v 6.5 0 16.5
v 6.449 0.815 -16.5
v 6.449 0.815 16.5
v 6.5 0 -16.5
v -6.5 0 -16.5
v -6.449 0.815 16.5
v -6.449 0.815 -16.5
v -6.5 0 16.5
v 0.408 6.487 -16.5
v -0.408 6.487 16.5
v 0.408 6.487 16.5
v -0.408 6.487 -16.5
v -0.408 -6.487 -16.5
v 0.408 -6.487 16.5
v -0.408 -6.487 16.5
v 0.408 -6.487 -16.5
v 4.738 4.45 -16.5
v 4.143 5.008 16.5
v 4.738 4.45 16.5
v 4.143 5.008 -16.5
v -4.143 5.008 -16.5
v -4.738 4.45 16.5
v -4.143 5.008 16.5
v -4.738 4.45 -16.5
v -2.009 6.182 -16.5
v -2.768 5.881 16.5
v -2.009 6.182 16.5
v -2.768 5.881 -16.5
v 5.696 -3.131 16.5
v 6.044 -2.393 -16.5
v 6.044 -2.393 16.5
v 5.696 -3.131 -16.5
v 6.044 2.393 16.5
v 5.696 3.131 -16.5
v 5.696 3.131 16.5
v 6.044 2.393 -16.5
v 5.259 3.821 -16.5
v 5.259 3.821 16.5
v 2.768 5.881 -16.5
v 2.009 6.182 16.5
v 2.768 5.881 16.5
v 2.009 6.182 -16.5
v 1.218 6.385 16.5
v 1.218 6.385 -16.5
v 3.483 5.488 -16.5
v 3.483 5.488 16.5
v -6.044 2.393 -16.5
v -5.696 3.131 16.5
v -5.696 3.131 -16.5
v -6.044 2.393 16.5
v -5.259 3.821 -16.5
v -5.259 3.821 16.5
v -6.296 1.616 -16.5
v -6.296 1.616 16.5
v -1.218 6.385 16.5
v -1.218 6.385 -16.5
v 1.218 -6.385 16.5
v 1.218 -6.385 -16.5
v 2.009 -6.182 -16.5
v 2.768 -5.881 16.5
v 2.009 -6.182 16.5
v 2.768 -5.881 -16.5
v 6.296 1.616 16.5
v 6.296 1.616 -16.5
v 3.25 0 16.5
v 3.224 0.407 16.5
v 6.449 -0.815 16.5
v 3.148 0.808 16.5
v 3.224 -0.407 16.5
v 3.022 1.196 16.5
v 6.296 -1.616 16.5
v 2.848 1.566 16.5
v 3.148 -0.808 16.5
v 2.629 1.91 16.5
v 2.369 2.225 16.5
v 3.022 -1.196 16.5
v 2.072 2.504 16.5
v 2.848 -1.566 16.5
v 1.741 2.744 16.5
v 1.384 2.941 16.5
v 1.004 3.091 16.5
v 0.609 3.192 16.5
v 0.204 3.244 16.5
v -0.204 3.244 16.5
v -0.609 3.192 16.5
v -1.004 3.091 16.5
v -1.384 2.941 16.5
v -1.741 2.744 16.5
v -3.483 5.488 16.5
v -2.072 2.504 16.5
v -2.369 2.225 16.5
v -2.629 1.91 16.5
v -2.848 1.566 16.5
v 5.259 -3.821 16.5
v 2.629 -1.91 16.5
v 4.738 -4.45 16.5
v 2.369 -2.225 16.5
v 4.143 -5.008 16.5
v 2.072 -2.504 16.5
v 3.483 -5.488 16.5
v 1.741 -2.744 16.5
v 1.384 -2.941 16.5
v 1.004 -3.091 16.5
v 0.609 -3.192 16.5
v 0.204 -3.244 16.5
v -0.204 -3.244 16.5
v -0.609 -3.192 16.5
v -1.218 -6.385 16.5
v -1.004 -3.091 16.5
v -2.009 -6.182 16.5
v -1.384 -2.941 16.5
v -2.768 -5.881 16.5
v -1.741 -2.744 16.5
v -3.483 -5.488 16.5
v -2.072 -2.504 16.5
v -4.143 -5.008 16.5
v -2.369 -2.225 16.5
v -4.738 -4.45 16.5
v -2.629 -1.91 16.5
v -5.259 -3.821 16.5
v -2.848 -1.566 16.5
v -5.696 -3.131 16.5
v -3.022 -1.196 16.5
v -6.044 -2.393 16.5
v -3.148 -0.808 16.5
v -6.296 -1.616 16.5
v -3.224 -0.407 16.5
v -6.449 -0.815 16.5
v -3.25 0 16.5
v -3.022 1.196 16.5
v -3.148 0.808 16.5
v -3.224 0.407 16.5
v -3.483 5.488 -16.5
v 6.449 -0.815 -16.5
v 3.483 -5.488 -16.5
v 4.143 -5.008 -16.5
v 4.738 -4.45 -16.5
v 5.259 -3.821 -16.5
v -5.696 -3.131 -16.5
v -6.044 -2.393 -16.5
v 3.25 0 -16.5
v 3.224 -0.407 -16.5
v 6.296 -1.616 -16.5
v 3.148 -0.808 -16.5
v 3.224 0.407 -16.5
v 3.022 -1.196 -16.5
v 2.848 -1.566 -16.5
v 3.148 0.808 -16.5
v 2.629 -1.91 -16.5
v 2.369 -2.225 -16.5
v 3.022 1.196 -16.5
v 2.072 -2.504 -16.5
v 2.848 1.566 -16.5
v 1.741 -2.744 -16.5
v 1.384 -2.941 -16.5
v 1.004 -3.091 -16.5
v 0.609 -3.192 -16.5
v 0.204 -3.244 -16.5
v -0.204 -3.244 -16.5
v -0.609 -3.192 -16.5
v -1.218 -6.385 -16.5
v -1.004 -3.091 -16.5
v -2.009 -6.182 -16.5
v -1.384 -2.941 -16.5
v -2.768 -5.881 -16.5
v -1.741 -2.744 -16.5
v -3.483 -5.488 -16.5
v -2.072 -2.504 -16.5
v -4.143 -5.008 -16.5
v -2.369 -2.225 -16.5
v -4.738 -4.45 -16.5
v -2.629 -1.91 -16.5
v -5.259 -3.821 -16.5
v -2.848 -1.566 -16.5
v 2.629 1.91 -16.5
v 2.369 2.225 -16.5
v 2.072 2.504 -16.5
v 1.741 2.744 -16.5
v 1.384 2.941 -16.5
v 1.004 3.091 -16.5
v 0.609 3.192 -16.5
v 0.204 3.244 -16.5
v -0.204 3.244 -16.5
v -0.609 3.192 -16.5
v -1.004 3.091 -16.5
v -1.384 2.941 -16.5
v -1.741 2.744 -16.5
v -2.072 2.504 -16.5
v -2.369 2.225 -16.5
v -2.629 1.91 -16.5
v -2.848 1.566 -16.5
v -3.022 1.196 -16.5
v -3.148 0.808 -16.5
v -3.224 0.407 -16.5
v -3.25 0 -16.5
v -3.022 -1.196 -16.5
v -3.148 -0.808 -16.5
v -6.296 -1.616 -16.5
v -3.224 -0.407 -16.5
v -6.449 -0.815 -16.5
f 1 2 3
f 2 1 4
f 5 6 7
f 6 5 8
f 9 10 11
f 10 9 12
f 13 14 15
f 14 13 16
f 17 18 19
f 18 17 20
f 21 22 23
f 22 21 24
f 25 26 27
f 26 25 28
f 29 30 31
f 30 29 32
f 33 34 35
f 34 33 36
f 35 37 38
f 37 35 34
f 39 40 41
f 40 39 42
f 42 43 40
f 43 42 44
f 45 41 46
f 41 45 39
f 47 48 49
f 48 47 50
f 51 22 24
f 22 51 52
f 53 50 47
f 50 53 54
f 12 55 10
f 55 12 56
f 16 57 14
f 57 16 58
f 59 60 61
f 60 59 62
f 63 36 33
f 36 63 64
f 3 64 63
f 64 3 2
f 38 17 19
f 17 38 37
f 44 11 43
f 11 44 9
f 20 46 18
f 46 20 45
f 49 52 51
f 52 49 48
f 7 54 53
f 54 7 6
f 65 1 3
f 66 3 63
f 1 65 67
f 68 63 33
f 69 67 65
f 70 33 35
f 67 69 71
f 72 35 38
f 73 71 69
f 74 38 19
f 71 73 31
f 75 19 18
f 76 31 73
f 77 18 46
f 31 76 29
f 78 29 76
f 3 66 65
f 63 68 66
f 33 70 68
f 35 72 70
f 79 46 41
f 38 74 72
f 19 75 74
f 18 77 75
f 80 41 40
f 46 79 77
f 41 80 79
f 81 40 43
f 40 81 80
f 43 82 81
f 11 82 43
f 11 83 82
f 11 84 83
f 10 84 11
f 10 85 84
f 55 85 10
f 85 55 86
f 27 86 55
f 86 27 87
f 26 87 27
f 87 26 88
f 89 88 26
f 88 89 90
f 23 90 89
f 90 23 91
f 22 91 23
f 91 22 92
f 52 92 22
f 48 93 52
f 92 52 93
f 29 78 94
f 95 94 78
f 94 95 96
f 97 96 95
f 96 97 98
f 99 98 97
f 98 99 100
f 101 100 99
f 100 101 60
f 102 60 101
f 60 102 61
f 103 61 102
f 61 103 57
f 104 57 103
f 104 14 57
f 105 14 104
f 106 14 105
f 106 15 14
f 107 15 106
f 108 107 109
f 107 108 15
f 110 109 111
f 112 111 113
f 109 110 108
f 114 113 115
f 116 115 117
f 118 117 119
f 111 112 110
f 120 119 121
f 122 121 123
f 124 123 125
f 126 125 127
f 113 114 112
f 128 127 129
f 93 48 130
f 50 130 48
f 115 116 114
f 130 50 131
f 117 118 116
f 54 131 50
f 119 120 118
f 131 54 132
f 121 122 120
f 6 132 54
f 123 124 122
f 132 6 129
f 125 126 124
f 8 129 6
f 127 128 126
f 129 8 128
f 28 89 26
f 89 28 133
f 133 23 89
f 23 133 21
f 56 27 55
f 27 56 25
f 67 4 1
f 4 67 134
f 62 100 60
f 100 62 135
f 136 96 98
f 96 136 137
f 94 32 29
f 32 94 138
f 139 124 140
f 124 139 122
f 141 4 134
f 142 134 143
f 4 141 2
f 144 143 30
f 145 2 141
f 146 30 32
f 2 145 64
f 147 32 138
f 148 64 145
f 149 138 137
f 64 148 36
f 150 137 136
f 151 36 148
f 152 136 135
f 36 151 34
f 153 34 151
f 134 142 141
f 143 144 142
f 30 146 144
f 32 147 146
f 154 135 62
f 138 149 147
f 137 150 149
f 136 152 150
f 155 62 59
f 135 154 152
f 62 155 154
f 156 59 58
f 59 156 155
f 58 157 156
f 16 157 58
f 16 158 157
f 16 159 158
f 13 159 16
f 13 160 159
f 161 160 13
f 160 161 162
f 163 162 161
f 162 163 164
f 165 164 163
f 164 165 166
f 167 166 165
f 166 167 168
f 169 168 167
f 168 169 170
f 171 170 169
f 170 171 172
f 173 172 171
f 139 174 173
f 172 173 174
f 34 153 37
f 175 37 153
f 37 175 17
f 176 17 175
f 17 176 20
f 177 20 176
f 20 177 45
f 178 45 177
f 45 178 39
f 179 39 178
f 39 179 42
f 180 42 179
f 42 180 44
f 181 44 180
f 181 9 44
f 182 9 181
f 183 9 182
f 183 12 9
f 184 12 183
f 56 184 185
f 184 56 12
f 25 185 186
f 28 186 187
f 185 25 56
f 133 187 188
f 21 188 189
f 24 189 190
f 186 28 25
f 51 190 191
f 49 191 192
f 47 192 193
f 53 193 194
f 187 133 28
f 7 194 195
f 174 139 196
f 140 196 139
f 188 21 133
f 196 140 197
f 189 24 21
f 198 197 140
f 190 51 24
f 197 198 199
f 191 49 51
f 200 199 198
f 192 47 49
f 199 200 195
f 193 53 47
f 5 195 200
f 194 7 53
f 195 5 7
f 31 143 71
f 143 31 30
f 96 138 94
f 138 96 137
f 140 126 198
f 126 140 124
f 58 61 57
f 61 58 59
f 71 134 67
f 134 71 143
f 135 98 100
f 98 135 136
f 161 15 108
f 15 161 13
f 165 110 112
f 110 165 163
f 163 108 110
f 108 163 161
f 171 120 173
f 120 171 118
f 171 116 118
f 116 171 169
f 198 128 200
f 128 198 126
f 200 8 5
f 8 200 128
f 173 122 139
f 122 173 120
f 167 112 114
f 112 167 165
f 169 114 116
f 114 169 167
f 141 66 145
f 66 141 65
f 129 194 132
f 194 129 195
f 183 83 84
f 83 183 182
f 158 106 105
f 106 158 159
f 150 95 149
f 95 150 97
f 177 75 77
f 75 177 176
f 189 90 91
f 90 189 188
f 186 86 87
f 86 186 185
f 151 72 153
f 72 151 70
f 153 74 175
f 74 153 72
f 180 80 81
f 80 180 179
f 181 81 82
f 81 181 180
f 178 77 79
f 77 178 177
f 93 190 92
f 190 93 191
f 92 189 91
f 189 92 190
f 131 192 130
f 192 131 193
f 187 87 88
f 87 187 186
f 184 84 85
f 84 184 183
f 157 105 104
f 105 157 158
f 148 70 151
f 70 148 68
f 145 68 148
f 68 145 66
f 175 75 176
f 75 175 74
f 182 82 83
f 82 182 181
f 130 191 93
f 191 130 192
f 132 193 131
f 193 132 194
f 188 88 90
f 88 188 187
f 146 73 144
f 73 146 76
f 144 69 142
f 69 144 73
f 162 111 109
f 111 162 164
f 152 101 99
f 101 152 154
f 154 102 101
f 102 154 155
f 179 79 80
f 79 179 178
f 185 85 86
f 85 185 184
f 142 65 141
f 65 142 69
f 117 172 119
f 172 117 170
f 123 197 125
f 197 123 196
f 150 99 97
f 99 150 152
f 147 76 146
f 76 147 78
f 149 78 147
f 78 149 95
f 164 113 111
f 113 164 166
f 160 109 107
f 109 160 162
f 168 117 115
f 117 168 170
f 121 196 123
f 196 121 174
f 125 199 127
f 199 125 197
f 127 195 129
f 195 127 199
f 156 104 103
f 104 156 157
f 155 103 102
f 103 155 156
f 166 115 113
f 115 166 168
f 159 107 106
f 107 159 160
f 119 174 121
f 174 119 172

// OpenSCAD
$fn = 50;


difference() {
	union() {
		translate(v = [0, 0, -16.5000000000]) {
			cylinder(h = 33, r = 6.5000000000);
		}
	}
	union() {
		translate(v = [0, 0, -100.0000000000]) {
			cylinder(h = 200, r = 3.2500000000);
		}
	}
}
